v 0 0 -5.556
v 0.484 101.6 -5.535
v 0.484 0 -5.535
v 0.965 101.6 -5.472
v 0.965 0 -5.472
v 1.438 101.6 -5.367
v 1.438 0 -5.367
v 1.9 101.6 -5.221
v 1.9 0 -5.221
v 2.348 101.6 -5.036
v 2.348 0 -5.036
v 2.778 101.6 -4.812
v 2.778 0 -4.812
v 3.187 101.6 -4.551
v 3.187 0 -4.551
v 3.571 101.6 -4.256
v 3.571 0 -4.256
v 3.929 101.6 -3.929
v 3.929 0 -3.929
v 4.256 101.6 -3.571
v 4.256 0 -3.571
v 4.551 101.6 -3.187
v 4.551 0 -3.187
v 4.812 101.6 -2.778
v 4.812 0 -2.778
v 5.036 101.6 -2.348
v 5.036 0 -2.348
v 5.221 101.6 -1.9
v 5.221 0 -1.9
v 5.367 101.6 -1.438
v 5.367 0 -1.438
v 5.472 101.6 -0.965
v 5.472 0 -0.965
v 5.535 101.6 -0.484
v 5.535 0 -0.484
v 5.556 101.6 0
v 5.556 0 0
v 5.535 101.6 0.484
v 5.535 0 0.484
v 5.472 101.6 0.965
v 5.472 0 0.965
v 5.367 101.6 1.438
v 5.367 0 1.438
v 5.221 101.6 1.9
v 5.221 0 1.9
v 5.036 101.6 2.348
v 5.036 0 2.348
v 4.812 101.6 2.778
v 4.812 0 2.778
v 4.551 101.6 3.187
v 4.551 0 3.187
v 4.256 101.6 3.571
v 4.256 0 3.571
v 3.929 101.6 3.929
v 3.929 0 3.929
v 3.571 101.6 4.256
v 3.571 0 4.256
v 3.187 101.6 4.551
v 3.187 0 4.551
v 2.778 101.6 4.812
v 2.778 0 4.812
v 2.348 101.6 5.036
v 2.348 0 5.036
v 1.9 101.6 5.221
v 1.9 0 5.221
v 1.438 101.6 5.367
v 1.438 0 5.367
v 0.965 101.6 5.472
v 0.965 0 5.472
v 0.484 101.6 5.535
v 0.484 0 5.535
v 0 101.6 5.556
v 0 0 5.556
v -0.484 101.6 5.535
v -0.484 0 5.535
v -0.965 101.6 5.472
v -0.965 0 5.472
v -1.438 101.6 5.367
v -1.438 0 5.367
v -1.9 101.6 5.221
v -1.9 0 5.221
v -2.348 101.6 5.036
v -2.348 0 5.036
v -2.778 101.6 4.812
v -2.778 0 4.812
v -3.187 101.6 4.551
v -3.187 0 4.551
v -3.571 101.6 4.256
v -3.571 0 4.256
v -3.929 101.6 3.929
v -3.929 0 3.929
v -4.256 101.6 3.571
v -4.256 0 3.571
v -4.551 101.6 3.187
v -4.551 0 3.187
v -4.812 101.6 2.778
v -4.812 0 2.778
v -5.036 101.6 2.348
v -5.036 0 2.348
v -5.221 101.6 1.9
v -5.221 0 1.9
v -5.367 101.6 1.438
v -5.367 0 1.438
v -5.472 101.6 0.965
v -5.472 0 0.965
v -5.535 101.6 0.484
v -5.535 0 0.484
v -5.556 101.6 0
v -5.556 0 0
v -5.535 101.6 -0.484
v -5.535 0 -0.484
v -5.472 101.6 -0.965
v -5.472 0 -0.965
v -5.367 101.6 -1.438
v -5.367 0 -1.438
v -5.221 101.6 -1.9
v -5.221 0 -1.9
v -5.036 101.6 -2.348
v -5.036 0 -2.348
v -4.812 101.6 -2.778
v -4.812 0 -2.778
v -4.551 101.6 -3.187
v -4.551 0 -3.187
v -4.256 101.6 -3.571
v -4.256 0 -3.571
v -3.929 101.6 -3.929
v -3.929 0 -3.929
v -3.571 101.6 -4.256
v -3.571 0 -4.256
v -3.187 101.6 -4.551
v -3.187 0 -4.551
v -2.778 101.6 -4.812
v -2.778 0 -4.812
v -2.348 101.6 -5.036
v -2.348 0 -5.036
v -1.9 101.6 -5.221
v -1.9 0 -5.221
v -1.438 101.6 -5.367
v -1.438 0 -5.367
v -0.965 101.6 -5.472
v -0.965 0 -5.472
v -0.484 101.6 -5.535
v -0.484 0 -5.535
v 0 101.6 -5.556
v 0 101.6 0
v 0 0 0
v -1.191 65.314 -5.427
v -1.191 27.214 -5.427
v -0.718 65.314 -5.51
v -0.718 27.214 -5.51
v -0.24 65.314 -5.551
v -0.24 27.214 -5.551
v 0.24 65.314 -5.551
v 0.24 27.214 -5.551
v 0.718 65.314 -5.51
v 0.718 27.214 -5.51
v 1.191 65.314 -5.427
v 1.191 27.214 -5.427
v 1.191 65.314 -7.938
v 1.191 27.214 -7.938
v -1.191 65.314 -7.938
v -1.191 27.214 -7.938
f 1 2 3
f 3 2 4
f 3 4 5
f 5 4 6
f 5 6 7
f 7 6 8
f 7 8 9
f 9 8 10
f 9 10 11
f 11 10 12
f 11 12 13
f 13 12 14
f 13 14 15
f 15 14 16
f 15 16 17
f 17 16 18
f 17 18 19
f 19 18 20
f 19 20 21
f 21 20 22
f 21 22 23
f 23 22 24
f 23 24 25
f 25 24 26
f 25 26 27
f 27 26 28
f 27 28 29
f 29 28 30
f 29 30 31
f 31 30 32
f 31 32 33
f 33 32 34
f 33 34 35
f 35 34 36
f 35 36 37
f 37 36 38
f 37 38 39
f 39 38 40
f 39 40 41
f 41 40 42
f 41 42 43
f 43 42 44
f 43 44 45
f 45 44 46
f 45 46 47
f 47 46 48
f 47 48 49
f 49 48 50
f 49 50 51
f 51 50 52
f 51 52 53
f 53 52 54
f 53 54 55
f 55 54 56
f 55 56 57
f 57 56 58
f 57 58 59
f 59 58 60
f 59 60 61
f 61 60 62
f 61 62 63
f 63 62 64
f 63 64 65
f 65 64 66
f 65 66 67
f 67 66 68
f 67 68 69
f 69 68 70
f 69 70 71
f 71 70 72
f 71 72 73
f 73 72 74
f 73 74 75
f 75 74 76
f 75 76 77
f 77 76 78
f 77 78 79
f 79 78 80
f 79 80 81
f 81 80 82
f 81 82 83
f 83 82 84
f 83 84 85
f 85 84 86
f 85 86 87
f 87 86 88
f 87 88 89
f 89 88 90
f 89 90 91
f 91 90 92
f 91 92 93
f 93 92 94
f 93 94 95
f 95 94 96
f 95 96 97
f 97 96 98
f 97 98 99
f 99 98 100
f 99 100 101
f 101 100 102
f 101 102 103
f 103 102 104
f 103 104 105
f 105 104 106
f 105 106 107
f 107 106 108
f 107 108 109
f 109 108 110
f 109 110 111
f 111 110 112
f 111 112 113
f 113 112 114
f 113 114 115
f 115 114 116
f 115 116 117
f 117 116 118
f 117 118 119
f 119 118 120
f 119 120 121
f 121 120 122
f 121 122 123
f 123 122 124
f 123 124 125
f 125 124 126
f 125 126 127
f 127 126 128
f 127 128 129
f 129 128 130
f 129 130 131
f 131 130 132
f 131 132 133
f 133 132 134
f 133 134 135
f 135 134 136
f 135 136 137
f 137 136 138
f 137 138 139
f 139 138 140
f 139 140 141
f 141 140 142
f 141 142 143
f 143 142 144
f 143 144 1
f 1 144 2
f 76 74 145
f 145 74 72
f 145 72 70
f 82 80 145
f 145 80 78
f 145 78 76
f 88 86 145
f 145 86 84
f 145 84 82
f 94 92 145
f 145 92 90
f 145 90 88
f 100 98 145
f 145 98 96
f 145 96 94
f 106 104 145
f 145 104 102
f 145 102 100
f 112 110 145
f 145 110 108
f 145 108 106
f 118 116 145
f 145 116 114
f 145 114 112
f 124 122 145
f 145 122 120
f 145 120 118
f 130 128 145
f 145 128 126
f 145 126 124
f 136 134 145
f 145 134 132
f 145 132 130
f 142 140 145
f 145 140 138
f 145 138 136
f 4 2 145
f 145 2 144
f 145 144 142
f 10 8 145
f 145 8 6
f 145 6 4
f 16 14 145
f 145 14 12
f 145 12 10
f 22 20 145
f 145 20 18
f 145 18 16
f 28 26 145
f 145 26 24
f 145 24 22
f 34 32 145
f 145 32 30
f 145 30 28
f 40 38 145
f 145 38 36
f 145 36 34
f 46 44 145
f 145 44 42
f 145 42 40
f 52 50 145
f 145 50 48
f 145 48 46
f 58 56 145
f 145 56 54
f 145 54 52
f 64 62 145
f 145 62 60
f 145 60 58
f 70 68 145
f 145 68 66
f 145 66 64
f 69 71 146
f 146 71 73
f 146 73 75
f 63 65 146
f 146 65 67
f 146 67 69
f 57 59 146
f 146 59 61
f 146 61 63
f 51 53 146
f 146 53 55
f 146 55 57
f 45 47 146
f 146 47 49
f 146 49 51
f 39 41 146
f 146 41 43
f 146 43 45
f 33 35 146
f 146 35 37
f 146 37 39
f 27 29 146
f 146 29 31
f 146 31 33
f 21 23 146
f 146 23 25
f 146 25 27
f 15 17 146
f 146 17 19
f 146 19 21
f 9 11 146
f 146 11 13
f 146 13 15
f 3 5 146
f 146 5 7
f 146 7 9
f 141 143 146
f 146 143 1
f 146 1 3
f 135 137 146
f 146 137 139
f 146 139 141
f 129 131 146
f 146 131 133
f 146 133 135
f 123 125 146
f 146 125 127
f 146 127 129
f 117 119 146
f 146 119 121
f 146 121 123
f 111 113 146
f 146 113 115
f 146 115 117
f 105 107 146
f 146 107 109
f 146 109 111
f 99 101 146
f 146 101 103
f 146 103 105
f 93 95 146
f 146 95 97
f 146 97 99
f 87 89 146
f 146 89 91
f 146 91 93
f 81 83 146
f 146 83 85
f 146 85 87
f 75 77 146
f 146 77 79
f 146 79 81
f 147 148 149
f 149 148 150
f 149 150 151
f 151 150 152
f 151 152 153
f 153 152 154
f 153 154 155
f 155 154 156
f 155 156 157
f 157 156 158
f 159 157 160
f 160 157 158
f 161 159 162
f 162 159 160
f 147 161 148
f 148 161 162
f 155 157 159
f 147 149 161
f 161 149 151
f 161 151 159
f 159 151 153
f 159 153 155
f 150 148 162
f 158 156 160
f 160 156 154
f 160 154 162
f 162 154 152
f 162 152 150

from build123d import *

# Parameters (mm, degrees)
BOSS_EXTRUDE2_DEPTH = 101.6
BOSS_EXTRUDE3_DEPTH = 38.1
MOVE_FACE4_DEPTH    = 27.214285714
MOVE_START          = 38.1
MOVE_FACE4_2_DEPTH  = 27.214285714


# Read off the part's stored shape, not the designer's step: Move Face4
with BuildPart() as part:
    # Sketch2 → Boss-Extrude2 (new body)
    with BuildSketch(Plane(origin=(0, 0, 0), x_dir=(1, 0, 0), z_dir=(0, 1, 0))):
        with BuildLine():
            Line((-1.190625, -5.427184), (-1.190625, 5.427184))
            ThreePointArc((-1.190625, 5.427184), (-5.55625, 0), (-1.190625, -5.427184))
        make_face()
        with BuildLine():
            ThreePointArc((1.190625, 5.427184), (0, 5.55625), (-1.190625, 5.427184))
            Line((-1.190625, 5.427184), (-1.190625, -5.427184))
            ThreePointArc((-1.190625, -5.427184), (0, -5.55625), (1.190625, -5.427184))
            Line((1.190625, -5.427184), (1.190625, 5.427184))
        make_face()
        with BuildLine():
            ThreePointArc((5.55625, 0), (4.32939512, 3.482563991), (1.190625, 5.427184))
            Line((1.190625, 5.427184), (1.190625, -5.427184))
            ThreePointArc((1.190625, -5.427184), (4.32939512, -3.482563991), (5.55625, 0))
        make_face()
    extrude(amount=BOSS_EXTRUDE2_DEPTH)


with BuildPart() as body_2:
    # Sketch2<4> → Boss-Extrude3 (new body)
    with BuildSketch(Plane(origin=(0, 0, 0), x_dir=(1, 0, 0), z_dir=(0, 1, 0))):
        with BuildLine():
            Line((1.190625, 7.9375), (-1.190625, 7.9375))
            Line((-1.190625, 7.9375), (-1.190625, 5.427184))
            ThreePointArc((-1.190625, 5.427184), (0, 5.55625), (1.190625, 5.427184))
            Line((1.190625, 5.427184), (1.190625, 7.9375))
        make_face()
    extrude(amount=BOSS_EXTRUDE3_DEPTH)

    # Move Face4 outline → Move Face4 (cut)
    with BuildSketch(Plane(origin=(0, 0, 0), x_dir=(1, 0, 0), z_dir=(0, 1, 0))):
        with BuildLine():
            Line((-1.190625, 7.9375), (-1.190625, 5.427184))
            ThreePointArc((-1.190625, 5.427184), (0, 5.55625), (1.190625, 5.427184))
            Line((1.190625, 5.427184), (1.190625, 7.9375))
            Line((1.190625, 7.9375), (-1.190625, 7.9375))
        make_face()
    extrude(amount=MOVE_FACE4_DEPTH, mode=Mode.SUBTRACT)

    # Move Face4 2 outline → Move Face4 2 (add)
    with BuildSketch(Plane(origin=(0, 0, 0), x_dir=(1, 0, 0), z_dir=(0, 1, 0)).offset(MOVE_START)):
        with BuildLine():
            Line((-1.190625, 7.9375), (-1.190625, 5.427184))
            ThreePointArc((-1.190625, 5.427184), (0, 5.55625), (1.190625, 5.427184))
            Line((1.190625, 5.427184), (1.190625, 7.9375))
            Line((1.190625, 7.9375), (-1.190625, 7.9375))
        make_face()
    extrude(amount=MOVE_FACE4_2_DEPTH)


solid = Compound([part.part, body_2.part])
